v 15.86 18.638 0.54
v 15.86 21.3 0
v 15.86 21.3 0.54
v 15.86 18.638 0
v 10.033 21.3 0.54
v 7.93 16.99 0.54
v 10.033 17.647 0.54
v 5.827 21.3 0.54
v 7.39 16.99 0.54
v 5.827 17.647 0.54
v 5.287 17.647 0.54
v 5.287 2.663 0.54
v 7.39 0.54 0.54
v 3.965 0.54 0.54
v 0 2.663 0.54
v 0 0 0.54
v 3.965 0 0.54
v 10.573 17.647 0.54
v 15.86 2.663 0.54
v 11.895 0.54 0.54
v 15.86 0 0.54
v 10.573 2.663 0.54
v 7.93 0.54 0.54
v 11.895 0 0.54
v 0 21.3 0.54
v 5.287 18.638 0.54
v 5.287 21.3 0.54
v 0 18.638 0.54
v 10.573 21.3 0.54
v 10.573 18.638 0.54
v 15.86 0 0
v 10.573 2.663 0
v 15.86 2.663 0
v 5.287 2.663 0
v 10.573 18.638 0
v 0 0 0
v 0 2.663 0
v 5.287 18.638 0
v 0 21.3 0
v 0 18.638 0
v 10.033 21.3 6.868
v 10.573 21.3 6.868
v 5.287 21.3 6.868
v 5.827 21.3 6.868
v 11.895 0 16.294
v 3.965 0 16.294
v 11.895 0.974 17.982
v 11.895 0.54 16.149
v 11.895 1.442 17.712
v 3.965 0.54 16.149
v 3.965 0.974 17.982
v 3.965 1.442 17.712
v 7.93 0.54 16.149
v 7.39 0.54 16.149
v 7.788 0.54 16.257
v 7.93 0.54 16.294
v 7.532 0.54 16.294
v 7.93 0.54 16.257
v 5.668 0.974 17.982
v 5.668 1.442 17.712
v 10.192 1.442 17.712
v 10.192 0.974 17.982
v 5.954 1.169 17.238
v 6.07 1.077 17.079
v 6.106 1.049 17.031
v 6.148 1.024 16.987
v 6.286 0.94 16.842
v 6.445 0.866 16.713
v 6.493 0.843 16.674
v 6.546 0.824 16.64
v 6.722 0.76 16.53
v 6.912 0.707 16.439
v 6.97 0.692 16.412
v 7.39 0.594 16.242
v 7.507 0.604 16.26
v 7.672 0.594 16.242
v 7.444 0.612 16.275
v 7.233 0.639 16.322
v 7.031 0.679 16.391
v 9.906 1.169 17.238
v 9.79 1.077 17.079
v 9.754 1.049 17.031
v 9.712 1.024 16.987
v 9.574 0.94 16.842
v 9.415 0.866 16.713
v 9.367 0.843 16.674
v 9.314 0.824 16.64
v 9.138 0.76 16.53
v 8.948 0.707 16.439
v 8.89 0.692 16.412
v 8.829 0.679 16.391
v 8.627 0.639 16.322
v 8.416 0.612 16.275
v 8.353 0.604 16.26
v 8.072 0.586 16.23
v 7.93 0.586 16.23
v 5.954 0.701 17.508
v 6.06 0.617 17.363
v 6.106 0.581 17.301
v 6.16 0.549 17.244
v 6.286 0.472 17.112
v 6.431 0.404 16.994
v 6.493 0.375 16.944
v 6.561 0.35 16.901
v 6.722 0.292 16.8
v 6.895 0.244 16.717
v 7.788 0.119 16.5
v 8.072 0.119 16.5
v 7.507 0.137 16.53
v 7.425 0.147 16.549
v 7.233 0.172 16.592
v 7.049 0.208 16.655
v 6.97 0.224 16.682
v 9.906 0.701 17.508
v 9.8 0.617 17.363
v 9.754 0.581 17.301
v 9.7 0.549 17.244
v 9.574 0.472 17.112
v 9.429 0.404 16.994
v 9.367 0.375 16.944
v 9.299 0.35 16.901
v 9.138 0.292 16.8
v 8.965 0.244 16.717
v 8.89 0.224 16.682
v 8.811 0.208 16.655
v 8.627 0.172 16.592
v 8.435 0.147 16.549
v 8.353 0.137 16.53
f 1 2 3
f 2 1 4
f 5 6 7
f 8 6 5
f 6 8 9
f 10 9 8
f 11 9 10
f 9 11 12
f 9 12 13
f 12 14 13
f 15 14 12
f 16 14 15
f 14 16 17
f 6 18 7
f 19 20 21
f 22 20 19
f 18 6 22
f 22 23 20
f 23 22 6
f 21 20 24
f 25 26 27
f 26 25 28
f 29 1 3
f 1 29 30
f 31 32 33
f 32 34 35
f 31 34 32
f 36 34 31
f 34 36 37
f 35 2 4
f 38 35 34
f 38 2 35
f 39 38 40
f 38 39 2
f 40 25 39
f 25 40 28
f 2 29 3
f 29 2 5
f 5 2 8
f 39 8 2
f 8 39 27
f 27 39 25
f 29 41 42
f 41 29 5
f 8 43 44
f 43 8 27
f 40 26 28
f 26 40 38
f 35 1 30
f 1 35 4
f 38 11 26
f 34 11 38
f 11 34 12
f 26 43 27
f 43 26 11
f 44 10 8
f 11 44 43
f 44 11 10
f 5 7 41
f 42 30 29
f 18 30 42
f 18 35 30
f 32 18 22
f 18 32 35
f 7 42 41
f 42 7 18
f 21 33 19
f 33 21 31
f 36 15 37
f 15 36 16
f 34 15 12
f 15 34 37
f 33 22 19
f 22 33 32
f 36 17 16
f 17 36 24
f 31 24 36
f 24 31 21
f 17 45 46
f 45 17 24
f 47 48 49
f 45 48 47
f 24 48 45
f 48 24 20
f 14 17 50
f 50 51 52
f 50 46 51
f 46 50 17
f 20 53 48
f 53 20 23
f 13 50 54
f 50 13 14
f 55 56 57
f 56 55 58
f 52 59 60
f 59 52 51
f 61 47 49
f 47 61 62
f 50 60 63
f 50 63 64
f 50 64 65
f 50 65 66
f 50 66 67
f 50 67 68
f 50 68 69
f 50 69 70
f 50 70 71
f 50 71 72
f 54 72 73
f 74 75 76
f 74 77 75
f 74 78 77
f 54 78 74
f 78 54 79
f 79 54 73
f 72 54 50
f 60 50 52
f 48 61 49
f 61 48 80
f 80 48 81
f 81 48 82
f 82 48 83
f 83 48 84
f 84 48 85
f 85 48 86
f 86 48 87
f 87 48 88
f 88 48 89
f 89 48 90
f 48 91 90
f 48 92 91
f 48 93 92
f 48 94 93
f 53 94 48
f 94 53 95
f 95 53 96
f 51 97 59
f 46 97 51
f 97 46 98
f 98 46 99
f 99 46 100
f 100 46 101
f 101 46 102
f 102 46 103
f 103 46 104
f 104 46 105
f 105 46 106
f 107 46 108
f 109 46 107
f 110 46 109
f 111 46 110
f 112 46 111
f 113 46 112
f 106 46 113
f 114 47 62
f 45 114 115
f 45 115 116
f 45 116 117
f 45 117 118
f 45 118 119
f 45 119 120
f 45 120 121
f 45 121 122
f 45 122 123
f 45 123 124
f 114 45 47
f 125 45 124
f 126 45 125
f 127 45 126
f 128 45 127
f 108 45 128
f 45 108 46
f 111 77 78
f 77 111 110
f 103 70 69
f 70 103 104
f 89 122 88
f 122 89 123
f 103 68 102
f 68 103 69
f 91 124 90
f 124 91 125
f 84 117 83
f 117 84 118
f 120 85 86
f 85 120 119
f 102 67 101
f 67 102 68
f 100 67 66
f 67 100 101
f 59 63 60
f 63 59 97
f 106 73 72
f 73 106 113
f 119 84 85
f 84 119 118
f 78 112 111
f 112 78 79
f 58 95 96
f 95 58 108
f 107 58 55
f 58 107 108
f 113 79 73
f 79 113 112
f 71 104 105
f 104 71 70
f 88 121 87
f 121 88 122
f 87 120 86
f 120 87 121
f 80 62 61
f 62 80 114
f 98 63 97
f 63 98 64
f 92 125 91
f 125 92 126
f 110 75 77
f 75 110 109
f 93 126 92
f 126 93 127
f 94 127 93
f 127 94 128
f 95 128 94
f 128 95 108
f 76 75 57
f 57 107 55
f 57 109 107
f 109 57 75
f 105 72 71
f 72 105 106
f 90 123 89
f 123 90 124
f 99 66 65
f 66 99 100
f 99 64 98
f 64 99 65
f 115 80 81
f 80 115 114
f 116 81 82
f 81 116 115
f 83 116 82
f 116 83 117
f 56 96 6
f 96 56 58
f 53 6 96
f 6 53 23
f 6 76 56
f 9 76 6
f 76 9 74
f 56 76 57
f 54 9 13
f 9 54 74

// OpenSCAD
$fn = 50;

union() {
    translate([5.2867, 0, 0]) {
        cube([5.2867, 21.3005, 0.54]);
    };
    union() {
        translate([0, 18.6379, 0]) {
            cube([15.86, 2.6626, 0.54]);
        };
        translate([5.2867, 21.3005, 0]) {
            rotate([180, 270, 0]) {
                linear_extrude(height=0.54) {
                    polygon([[0, 0], [6.8675814520106, 0], [0, 3.965]]);
                };
            };
        };
        translate([10.0334, 21.3005, 0]) {
            rotate([180, 270, 0]) {
                linear_extrude(height=0.54) {
                    polygon([[0, 0], [6.8675814520106, 0], [0, 3.965]]);
                };
            };
        };
    };
    difference() {
        union() {
            cube([15.86, 2.6626, 0.54]);
            translate([3.965, 0, 0]) {
                cube([7.93, 0.54, 16.294]);
            };
            translate([3.965, 0, 16.294]) {
                rotate([-30, 0, 0]) {
                    cube([7.93, 0.54, 1.9486]);
                };
            };
        };
        hull() {
            translate([7.93, 3.3246728714729, 17.2476]) {
                rotate([60, 0, 0]) {
                    cylinder(h=8, r2=2.255, r1=2.255);
                };
            };
            translate([7.93, 3.3246728714729, 19.4976]) {
                rotate([60, 0, 0]) {
                    cylinder(h=8, r2=3.157, r1=3.157);
                };
            };
        };
    };
    translate([7.93, 0.54, 0.54]) {
        rotate([0, 270, 0]) {
            linear_extrude(height=0.54) {
                polygon([[0, 0], [15.754, 0], [0, 16.449906112598]]);
            };
        };
    };
};
